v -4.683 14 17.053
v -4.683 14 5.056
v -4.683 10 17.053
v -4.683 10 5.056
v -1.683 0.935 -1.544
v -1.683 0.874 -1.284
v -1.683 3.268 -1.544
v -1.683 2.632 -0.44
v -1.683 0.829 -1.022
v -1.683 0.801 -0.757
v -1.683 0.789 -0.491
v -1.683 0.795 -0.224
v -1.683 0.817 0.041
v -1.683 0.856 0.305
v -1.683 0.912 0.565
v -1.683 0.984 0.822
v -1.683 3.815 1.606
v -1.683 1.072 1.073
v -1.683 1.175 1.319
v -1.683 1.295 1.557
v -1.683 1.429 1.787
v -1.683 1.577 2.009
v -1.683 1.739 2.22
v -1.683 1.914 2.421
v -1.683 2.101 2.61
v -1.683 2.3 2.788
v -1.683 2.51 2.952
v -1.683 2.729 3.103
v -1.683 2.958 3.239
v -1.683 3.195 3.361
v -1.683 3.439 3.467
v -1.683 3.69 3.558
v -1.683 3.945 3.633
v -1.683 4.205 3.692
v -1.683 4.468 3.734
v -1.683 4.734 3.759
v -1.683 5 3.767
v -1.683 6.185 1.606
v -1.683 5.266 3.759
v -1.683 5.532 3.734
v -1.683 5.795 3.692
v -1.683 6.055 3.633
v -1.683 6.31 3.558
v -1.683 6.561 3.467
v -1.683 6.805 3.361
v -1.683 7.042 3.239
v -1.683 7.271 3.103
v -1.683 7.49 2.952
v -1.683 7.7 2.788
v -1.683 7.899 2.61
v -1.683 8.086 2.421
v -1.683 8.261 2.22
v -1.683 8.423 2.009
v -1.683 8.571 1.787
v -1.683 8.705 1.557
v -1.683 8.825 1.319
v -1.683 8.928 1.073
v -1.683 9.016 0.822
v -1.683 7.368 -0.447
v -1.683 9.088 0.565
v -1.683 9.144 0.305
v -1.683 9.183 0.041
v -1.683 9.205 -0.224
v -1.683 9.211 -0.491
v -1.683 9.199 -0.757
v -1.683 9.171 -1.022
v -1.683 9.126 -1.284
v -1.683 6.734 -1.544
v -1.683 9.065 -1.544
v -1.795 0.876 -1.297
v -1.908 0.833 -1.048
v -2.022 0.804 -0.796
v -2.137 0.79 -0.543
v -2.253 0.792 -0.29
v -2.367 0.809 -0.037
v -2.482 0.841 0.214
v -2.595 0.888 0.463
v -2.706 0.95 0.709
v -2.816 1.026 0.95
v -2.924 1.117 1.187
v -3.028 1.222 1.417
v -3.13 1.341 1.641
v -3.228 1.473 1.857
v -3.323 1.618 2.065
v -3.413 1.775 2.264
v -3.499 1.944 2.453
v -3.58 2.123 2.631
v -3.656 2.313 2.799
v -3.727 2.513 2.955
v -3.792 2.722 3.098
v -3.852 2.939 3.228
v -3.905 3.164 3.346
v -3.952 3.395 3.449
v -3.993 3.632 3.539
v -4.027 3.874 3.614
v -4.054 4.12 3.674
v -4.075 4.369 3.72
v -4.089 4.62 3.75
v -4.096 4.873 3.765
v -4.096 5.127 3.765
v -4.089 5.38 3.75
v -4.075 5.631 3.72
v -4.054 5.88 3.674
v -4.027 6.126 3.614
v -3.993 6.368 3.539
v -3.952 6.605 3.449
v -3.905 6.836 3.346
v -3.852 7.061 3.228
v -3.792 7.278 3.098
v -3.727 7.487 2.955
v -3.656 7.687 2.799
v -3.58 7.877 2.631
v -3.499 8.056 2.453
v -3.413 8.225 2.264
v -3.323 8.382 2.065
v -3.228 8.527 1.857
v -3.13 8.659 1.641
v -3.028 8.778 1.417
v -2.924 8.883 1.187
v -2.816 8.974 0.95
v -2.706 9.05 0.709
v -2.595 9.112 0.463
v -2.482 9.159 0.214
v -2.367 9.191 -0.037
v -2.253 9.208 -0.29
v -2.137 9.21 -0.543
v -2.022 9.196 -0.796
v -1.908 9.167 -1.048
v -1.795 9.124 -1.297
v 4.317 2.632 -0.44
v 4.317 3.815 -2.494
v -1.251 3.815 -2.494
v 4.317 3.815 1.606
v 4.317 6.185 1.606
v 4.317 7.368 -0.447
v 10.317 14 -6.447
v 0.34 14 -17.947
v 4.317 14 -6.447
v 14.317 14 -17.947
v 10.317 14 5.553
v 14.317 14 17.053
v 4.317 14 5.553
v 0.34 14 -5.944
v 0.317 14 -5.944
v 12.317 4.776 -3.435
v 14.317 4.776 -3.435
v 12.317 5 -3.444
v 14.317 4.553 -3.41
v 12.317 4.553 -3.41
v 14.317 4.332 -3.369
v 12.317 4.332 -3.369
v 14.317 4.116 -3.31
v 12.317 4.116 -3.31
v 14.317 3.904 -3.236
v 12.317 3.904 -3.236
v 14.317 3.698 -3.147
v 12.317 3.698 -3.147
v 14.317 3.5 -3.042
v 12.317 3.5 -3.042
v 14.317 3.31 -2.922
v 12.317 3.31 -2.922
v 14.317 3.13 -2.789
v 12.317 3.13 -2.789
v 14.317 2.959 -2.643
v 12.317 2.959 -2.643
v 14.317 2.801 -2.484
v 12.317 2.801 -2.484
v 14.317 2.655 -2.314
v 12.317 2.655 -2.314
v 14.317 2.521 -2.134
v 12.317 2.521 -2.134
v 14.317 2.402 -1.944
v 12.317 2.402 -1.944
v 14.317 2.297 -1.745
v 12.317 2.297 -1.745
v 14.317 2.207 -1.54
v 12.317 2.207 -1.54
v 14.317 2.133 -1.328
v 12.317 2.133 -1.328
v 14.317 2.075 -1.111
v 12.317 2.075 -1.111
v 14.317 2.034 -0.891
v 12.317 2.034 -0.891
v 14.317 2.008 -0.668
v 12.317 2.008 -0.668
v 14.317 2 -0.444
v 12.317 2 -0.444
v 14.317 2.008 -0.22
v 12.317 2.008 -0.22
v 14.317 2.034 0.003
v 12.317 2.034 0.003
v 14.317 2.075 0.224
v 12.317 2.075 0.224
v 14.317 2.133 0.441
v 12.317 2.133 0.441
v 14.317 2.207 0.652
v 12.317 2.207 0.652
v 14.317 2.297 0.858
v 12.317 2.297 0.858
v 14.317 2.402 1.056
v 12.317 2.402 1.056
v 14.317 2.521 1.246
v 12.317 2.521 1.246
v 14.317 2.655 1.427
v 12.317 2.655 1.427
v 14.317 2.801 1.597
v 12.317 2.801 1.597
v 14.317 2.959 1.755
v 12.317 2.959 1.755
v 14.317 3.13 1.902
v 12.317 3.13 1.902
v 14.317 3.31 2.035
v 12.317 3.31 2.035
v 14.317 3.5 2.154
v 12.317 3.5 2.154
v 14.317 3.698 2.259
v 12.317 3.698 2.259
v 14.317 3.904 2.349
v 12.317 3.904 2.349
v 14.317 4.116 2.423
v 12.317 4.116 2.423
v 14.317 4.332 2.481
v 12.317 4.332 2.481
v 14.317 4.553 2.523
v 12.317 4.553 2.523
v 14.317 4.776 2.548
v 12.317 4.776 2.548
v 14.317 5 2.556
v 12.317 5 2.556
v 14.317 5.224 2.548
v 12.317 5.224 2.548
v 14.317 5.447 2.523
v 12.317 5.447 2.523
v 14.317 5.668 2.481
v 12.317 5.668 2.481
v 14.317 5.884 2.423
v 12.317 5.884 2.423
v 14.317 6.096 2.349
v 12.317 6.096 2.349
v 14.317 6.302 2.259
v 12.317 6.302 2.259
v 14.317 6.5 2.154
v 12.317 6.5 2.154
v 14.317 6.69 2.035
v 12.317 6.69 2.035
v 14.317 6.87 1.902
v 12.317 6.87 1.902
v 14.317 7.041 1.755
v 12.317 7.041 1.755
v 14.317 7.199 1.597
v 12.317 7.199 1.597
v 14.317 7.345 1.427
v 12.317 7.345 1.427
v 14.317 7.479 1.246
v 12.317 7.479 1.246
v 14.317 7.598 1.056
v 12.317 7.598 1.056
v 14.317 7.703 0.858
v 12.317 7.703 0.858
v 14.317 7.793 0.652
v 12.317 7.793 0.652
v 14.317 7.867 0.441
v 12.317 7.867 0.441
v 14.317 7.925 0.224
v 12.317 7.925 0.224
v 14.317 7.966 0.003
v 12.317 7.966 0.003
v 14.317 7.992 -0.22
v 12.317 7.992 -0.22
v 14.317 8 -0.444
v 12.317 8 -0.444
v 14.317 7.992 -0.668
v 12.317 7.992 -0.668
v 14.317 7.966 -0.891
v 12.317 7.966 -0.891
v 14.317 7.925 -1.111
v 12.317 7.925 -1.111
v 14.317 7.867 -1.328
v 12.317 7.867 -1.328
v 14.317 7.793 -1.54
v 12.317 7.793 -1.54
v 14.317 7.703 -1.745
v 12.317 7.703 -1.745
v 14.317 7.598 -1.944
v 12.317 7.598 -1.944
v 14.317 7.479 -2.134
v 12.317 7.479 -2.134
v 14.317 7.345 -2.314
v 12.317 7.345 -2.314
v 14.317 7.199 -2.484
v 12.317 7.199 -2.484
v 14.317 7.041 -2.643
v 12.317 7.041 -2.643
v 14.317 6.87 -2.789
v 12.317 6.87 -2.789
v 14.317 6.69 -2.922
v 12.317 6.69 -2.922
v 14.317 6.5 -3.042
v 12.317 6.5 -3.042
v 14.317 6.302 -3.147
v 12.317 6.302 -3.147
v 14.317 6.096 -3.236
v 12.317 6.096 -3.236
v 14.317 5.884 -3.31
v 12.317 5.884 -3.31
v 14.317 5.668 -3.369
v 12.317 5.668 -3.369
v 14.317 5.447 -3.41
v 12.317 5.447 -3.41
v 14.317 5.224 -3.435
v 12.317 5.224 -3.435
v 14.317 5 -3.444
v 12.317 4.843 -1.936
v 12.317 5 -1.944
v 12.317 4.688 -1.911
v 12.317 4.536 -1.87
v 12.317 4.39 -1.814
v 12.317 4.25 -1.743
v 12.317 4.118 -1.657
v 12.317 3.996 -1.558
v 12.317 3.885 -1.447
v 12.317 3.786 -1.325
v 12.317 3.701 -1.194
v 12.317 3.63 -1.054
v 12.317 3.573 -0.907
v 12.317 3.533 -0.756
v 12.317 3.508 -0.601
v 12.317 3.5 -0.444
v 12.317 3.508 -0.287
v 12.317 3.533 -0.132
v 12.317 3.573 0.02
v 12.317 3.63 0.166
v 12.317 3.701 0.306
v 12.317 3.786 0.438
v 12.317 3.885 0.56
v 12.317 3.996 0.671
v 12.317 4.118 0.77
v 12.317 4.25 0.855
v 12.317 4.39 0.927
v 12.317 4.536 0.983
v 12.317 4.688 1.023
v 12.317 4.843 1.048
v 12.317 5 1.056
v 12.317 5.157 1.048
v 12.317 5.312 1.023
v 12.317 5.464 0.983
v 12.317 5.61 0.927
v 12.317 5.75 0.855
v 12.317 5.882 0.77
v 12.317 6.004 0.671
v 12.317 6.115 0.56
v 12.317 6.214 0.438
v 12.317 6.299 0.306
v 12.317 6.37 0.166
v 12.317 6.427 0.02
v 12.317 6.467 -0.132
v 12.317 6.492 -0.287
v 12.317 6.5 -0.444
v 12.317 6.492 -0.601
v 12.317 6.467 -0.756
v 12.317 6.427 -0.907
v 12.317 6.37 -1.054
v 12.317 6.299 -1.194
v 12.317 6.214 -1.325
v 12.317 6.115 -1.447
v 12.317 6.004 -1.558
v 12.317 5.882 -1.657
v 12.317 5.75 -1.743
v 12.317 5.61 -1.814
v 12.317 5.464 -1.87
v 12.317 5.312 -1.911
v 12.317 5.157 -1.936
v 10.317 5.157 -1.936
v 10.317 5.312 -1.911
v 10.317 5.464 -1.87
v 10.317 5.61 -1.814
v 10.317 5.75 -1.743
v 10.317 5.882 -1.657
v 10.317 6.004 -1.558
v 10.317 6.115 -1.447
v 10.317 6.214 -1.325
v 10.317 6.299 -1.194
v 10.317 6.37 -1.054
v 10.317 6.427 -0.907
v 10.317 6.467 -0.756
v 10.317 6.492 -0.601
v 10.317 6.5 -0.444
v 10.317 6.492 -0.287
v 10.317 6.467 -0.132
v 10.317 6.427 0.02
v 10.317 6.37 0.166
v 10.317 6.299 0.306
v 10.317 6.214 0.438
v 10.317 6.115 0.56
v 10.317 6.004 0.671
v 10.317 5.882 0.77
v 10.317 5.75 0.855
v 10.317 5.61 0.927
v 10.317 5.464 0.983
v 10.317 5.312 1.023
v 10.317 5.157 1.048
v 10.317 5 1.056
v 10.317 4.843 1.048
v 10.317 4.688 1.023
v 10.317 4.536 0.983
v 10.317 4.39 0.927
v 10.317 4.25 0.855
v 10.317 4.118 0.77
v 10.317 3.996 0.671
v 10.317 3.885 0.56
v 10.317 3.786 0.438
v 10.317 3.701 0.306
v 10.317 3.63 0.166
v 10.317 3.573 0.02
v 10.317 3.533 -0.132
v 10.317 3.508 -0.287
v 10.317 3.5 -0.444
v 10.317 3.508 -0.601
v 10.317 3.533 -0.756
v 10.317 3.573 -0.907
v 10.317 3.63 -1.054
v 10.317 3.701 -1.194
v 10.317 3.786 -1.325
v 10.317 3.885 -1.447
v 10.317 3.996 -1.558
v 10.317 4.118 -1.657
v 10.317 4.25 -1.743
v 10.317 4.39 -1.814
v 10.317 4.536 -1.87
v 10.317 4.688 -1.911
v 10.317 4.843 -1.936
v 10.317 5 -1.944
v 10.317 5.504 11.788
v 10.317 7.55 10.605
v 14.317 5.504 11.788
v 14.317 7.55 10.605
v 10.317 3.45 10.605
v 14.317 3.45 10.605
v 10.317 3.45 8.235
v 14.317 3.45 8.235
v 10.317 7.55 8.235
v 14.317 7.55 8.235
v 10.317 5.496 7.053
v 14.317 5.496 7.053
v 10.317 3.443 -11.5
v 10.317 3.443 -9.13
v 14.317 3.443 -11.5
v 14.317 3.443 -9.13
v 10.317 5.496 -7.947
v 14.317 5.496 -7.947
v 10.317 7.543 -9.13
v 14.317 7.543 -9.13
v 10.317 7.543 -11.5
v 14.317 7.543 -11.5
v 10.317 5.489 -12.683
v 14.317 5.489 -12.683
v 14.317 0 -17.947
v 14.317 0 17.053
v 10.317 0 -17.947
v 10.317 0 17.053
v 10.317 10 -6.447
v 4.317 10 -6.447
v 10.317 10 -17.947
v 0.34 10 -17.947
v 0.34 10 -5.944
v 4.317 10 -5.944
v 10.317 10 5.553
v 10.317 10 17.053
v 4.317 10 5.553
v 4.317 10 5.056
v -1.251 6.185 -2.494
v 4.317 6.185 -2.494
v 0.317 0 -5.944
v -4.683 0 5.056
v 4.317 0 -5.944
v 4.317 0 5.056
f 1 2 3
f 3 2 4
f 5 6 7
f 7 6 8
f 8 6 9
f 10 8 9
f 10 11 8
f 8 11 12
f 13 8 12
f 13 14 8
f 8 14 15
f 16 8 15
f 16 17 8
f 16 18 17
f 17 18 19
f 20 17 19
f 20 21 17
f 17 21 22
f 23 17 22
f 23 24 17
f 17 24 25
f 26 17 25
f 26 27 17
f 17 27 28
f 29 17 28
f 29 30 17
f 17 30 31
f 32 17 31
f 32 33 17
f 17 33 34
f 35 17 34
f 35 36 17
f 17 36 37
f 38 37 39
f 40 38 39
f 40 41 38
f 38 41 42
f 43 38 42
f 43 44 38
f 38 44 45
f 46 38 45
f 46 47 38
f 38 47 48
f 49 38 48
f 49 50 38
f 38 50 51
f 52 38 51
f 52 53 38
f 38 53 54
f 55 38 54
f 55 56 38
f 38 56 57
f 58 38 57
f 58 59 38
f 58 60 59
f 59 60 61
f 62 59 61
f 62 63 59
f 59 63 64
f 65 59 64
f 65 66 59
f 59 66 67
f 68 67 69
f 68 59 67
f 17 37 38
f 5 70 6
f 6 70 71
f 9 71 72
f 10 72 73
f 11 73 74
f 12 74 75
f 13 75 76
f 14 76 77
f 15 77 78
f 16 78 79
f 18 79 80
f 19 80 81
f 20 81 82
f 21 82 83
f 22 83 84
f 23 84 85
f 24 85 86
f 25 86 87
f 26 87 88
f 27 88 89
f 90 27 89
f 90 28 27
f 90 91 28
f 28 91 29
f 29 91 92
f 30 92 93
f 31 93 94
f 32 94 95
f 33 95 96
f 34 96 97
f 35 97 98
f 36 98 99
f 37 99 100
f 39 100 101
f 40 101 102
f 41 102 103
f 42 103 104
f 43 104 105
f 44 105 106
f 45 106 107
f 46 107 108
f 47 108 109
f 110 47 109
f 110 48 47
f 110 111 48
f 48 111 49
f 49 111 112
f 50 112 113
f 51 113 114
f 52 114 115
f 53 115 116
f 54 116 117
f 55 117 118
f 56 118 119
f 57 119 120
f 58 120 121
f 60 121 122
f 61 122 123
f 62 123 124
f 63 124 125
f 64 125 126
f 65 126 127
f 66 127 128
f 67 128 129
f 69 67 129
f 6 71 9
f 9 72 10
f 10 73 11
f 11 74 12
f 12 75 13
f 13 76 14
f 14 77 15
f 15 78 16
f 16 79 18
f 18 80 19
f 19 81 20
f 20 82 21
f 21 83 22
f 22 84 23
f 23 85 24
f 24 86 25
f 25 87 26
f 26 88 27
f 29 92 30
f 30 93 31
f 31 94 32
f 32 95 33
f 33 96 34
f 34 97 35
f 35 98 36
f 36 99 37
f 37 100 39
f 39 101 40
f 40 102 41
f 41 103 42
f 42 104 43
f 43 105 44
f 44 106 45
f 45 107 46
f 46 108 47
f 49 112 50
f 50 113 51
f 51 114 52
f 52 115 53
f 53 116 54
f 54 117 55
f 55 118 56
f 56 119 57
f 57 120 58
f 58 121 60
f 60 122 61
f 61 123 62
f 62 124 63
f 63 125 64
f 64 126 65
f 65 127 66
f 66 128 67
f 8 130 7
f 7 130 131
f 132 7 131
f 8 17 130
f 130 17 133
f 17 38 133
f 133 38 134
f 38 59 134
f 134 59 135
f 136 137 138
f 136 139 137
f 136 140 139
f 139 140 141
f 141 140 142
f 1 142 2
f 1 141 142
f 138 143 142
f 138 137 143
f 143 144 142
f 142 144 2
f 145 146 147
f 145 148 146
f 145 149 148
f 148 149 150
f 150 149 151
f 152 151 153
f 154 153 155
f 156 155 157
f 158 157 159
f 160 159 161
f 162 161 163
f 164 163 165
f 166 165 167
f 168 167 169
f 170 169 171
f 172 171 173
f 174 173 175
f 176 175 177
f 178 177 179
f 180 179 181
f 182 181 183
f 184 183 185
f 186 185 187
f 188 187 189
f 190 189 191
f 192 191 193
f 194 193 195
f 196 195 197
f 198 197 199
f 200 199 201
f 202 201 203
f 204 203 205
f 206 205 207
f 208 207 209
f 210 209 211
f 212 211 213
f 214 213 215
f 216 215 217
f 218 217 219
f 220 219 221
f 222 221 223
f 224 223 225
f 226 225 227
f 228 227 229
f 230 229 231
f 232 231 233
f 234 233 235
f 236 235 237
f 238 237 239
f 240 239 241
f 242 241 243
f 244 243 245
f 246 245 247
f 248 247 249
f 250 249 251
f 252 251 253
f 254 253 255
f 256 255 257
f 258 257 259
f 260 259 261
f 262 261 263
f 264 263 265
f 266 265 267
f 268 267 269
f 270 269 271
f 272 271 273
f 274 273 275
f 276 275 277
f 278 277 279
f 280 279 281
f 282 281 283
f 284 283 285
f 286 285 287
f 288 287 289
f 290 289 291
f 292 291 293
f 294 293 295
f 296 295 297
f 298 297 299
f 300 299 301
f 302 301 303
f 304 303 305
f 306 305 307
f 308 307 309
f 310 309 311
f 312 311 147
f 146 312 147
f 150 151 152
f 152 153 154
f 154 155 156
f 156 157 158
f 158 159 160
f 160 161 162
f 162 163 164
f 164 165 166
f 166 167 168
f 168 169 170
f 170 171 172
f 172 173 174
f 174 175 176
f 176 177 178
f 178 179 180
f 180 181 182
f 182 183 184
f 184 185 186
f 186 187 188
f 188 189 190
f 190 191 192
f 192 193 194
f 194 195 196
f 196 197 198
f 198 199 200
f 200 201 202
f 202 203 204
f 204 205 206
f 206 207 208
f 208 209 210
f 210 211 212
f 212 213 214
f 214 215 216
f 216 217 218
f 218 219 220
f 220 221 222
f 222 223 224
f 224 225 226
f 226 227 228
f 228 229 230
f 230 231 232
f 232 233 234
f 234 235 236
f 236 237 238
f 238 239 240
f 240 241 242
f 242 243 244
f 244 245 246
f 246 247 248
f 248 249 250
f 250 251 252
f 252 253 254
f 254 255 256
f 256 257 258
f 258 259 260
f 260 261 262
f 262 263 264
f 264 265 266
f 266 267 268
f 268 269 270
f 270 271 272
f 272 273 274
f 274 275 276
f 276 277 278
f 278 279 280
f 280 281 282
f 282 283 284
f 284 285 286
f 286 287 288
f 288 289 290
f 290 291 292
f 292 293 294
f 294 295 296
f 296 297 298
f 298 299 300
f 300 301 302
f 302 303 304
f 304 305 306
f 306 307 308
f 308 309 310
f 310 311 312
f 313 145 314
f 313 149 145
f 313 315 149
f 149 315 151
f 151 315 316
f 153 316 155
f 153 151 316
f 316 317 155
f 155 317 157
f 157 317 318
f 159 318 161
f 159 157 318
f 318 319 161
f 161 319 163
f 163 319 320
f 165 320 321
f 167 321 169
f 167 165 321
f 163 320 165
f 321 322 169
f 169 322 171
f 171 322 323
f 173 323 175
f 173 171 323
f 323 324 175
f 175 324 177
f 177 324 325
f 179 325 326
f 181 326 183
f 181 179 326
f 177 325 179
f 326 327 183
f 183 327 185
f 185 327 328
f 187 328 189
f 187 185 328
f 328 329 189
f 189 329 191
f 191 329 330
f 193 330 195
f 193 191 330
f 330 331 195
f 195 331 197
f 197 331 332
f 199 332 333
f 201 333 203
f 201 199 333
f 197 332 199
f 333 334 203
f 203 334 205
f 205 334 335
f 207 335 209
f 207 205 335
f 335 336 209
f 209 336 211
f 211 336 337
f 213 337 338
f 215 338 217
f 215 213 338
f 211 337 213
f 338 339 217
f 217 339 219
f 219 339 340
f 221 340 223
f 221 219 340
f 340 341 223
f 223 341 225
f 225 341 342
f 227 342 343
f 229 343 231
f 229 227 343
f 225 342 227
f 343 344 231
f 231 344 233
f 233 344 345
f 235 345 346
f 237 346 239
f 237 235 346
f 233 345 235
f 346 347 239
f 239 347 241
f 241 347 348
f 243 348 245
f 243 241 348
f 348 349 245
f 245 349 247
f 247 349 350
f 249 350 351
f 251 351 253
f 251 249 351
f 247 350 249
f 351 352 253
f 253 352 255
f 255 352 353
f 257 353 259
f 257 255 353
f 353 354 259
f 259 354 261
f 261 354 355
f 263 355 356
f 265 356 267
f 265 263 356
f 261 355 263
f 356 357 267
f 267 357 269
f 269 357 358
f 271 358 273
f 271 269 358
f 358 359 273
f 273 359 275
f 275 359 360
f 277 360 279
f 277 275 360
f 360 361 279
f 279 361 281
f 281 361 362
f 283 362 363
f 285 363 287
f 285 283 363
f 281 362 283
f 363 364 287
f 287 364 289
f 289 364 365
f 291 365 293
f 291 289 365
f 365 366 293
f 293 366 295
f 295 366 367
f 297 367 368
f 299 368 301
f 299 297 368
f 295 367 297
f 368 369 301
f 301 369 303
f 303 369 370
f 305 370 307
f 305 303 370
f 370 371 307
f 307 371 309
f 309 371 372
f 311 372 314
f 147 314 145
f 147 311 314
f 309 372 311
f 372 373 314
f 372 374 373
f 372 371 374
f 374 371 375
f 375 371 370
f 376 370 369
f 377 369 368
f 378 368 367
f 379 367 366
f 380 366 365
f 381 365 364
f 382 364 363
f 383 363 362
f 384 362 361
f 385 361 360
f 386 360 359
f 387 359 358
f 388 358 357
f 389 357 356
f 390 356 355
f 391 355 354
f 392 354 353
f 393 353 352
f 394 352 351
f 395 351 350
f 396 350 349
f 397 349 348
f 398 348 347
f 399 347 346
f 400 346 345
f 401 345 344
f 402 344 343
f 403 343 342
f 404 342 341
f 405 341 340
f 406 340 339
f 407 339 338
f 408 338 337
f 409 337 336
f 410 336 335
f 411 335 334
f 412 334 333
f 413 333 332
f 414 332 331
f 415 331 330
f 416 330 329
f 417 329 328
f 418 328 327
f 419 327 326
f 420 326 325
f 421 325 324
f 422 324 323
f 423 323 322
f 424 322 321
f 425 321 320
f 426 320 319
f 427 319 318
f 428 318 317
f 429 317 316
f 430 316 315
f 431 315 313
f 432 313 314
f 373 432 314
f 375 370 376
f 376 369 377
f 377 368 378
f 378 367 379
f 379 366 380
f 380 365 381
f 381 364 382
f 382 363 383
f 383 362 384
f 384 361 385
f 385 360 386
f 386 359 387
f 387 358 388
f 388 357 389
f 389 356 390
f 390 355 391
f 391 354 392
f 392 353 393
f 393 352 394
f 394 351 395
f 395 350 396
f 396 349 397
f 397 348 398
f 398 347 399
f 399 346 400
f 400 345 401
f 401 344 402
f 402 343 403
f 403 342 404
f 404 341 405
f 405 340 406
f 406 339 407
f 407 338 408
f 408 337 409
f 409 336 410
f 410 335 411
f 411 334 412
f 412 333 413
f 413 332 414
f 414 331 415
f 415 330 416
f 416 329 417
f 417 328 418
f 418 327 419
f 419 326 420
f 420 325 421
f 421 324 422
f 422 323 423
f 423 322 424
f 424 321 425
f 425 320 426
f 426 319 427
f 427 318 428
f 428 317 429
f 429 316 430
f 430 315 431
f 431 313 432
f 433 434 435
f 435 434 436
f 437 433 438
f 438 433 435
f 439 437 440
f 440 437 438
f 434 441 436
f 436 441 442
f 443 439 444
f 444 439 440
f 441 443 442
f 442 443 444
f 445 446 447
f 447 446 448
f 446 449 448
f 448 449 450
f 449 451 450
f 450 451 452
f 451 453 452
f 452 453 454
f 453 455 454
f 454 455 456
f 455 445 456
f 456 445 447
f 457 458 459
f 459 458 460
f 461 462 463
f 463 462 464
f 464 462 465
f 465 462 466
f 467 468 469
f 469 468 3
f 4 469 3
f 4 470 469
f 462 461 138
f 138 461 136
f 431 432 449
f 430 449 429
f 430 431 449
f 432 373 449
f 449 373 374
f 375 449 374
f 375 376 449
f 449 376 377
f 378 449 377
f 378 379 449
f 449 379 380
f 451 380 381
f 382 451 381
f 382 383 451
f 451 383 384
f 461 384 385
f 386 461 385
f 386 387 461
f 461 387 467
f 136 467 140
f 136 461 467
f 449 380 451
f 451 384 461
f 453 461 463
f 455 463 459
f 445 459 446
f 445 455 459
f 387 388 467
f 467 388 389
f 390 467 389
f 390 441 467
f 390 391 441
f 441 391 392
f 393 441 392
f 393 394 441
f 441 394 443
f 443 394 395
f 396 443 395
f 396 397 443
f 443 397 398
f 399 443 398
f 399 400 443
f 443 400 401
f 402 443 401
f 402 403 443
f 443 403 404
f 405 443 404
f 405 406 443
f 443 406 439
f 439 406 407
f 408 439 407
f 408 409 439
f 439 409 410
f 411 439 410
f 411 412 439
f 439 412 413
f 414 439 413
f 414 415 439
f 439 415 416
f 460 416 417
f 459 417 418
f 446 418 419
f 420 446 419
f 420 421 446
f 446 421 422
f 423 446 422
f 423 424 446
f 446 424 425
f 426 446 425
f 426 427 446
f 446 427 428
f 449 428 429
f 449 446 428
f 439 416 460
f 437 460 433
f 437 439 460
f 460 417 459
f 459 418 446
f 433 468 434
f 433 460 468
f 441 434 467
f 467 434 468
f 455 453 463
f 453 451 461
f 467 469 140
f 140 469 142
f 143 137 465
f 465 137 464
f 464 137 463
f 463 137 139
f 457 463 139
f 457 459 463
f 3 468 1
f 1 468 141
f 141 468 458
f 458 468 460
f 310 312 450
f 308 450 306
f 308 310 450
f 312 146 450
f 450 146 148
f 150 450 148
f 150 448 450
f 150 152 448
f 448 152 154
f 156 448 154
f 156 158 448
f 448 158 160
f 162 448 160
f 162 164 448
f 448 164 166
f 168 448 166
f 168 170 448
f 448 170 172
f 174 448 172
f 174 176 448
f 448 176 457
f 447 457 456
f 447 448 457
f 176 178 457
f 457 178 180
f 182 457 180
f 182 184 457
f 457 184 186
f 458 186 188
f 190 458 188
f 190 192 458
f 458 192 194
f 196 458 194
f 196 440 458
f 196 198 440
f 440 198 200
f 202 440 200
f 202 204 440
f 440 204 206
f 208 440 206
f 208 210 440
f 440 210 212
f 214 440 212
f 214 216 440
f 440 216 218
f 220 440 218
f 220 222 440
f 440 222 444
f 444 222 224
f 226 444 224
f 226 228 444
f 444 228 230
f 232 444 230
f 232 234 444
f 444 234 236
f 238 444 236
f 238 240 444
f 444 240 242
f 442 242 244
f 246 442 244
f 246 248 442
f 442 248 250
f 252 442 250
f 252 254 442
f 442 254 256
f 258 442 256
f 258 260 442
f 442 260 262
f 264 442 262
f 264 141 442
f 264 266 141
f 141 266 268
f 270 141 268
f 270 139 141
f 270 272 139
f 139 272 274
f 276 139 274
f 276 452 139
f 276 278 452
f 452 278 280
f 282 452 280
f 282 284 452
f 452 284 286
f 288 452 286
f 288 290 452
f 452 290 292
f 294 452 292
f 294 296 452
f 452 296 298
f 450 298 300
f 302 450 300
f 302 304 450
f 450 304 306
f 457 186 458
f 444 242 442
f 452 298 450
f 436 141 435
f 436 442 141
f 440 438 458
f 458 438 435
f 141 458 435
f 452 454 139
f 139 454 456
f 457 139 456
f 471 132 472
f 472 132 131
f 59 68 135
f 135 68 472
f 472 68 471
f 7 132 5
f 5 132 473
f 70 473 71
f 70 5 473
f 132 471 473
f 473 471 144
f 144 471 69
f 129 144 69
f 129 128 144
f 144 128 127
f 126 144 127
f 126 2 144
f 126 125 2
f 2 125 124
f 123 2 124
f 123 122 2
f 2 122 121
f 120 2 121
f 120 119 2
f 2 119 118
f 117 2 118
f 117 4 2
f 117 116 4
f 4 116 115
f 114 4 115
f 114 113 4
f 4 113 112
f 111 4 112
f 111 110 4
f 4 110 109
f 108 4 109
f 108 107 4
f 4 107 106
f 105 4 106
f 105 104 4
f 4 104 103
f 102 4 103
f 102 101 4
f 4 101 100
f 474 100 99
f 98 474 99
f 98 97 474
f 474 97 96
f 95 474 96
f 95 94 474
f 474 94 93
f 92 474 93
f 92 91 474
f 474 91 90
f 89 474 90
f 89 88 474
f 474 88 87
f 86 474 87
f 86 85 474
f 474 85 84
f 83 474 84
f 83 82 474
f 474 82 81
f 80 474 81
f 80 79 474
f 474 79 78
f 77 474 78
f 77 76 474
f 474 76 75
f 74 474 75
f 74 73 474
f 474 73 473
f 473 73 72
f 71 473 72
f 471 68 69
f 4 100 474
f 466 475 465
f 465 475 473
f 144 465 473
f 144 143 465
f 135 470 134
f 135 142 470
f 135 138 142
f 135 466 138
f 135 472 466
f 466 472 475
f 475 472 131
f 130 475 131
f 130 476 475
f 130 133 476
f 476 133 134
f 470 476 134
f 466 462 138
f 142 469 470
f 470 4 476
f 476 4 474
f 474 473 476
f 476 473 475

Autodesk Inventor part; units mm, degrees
ref_plane "YZ Plane" through (0, 0, 0) normal (1, 0, 0) x (0, 1, 0)
ref_plane "XZ Plane" through (0, 0, 0) normal (0, 1, 0) x (-1, 0, 0)
ref_plane "XY Plane" through (0, 0, 0) normal (0, 0, 1) x (1, 0, 0)
sketch "Sketch1" plane through (0, 0, 0) normal (0, 1, 0) x (-1, 0, 0)
  line L0 (4.6826, 5.0563) -> (-4.3174, 5.0563)
  line L1 (-4.3174, 5.0563) -> (-4.3174, -5.9437)
  line L2 (-4.3174, -5.9437) -> (-0.3174, -5.9437)
  line L3 (4.6826, 5.0563) -> (-0.3174, -5.9437)
  point P0 (0, 0)
  dimension "d0" = 11
  dimension "d1" = 9
  dimension "d2" = 4
extrude "Extrusion1" add sketch "Sketch1" along normal blind 10
sketch "Sketch2" plane through (4.3174, 0, 5.0563) normal (1, 0, 0) x (0, 0, -1)
  line L0 (5.5037, 7.3678) -> (7.55, 3.815)
  line L1 (7.55, 3.815) -> (5.4963, 2.6322)
  line L2 (5.4963, 2.6322) -> (3.45, 6.185)
  line L3 (3.45, 6.185) -> (5.5037, 7.3678)
  line L4 (3.45, 6.185) -> (7.55, 6.185)
  line L5 (7.55, 6.185) -> (7.55, 3.815)
  line L6 (7.55, 3.815) -> (3.45, 3.815)
  line L7 (3.45, 3.815) -> (3.45, 6.185)
  line L8 (5.5037, 7.3678) -> (7.55, 6.185)
  line L9 (3.45, 3.815) -> (5.4963, 2.6322)
  line L10 (0, 0) -> (11, 0) projected
  line L11 (11, 0) -> (11, 10) projected
  line L12 (0, 10) -> (11, 10) projected
  line L13 (0, 0) -> (0, 10) projected
  line L14 (3.45, 6.185) -> (7.55, 3.815)
  line L15 (3.45, 3.815) -> (7.55, 6.185)
  line L16 (5.5037, 7.3678) -> (5.4963, 2.6322)
  point P0 (5.0563, 0)
  point P1 (11, 0)
  point P2 (5.5, 5)
  dimension "d6" = 4.1
  dimension "d7" = 2.37
  dimension "d8" = 4.1
  dimension "d9" = 2.37
  dimension "d11" = 5
  dimension "d12" = 5.5
extrude "Extrusion2" cut sketch "Sketch2" against normal through all contours L8 L4 L0 | L16 L4 L3 | L0 L4 L16 | L4 L15 L0 | L0 L15 L16 L4 | L14 L15 L2 | L2 L15 L7 | L4 L16 L14 | L5 L0 L15 | L0 L14 L15 | L15 L16 L6 L2 | L2 L6 L15 | L6 L2 L9 | L14 L6 L16 | L1 L16 L6 | L6 L16 L2
sketch "Sketch3" plane through (0, 10, 0) normal (0, 1, 0) x (1, 0, 0)
  line L0 (-4.6826, -5.0563) -> (4.3174, -5.0563) projected
  line L1 (4.3174, -5.0563) -> (4.3174, 5.9437) projected
  line L2 (4.3174, 5.9437) -> (0.3174, 5.9437) projected
  line L3 (0.3174, 5.9437) -> (-4.6826, -5.0563) projected
  line L4 (0.3399, 17.9475) -> (4.3174, 17.9475)
  line L5 (4.3174, 17.9475) -> (4.3174, -17.0525)
  line L6 (4.3174, -17.0525) -> (0.3399, -17.0525)
  line L7 (0.3399, -17.0525) -> (0.3399, 17.9475)
  line L8 (4.3174, -1.6063) -> (-3.1144, -1.6063) projected
  line L9 (4.3174, 2.4937) -> (-1.2508, 2.4937) projected
  line L10 (4.3174, 0.4475) -> (-2.1809, 0.4475) projected
  line L11 (4.3174, 17.9475) -> (14.3174, 17.9475)
  line L12 (14.3174, 17.9475) -> (14.3174, -17.0525)
  line L13 (14.3174, -17.0525) -> (4.3174, -17.0525)
  line L14 (4.3174, -17.0525) -> (4.3174, 17.9475)
  line L15 (4.3174, 6.4475) -> (10.3174, 6.4475)
  line L16 (10.3174, 6.4475) -> (10.3174, -5.5525)
  line L17 (10.3174, -5.5525) -> (4.3174, -5.5525)
  line L18 (4.3174, -5.5525) -> (4.3174, 6.4475)
  point P0 (0, 0)
  dimension "d15" = 35
  dimension "d16" = 17.5
  dimension "d17" = 10
  dimension "d18" = 6
  dimension "d19" = 6
  dimension "d20" = 12
extrude "Extrusion3" add sketch "Sketch3" along normal blind 1 contours L3 L8 L7 L0 | L7 L8 L1 L0 | L0 L5 L6 L7 | L3 L10 L7 L8 | L7 L10 L1 L8 | L3 L9 L7 L10 | L17 L16 L15 L5 L11 L12 L13 | L7 L9 L1 L10 | L3 L2 L7 L9 | L7 L2 L1 L9 | L7 L4 L5 L2
sketch "Sketch4" plane through (0, 10, 0) normal (0, -1, 0) x (1, 0, 0)
  line L0 (4.3174, -5.9437) -> (0.3399, -5.9437) projected
  line L1 (0.3399, -17.9475) -> (0.3399, -5.9437) projected
  line L2 (14.3174, -17.9475) -> (0.3399, -17.9475) projected
  line L3 (14.3174, 17.0525) -> (14.3174, -17.9475) projected
  line L4 (0.3399, 17.0525) -> (14.3174, 17.0525) projected
  line L5 (0.3399, 5.0563) -> (0.3399, 17.0525) projected
  line L6 (0.3399, 5.0563) -> (4.3174, 5.0563) projected
  line L7 (4.3174, 5.0563) -> (4.3174, 5.5525) projected
  line L8 (4.3174, 5.5525) -> (10.3174, 5.5525) projected
  line L9 (10.3174, 5.5525) -> (10.3174, -6.4475) projected
  line L10 (10.3174, -6.4475) -> (4.3174, -6.4475) projected
  line L11 (4.3174, -6.4475) -> (4.3174, -5.9437) projected
  line L12 (0.3399, 17.0525) -> (14.3174, 17.0525) projected
  line L13 (14.3174, -17.9475) -> (10.3174, -17.9475)
  line L14 (10.3174, -17.9475) -> (10.3174, 17.0525)
  line L15 (10.3174, 17.0525) -> (14.3174, 17.0525)
  line L16 (14.3174, 17.0525) -> (14.3174, -17.9475)
  point P0 (0, 0)
  dimension "d23" = 4
extrude "Extrusion4" add sketch "Sketch4" along normal blind 10 contours L9 L14 L4 L3 L2
sketch "Sketch5" plane through (14.3174, 11, 17.0525) normal (1, 0, 0) x (0, 0, -1)
  line L0 (5.2643, -5.4963) -> (8.8172, -3.45)
  line L1 (8.8172, -3.45) -> (10, -5.5037)
  line L2 (10, -5.5037) -> (6.4472, -7.55)
  line L3 (6.4472, -7.55) -> (5.2643, -5.4963)
  line L4 (6.4472, -7.55) -> (6.4472, -3.45)
  line L5 (6.4472, -3.45) -> (8.8172, -3.45)
  line L6 (8.8172, -3.45) -> (8.8172, -7.55)
  line L7 (8.8172, -7.55) -> (6.4472, -7.55)
  line L8 (5.2643, -5.4963) -> (6.4472, -3.45)
  line L9 (8.8172, -7.55) -> (10, -5.5037)
  line L10 (19.2733, 12.7) -> (12, 12.7)
  line L11 (25, -5.5037) -> (28.5528, -3.4574)
  line L12 (28.5528, -3.4574) -> (29.7357, -5.5112)
  line L13 (29.7357, -5.5112) -> (26.1828, -7.5574)
  line L14 (26.1828, -7.5574) -> (25, -5.5037)
  line L15 (26.1828, -7.5574) -> (26.1828, -3.4574)
  line L16 (26.1828, -3.4574) -> (28.5528, -3.4574)
  line L17 (28.5528, -3.4574) -> (28.5528, -7.5574)
  line L18 (28.5528, -7.5574) -> (26.1828, -7.5574)
  line L19 (25, -5.5037) -> (26.1828, -3.4574)
  line L20 (28.5528, -7.5574) -> (29.7357, -5.5112)
  line L21 (0, 0) -> (35, 0) projected
  line L22 (0, 0) -> (0, -11) projected
  line L23 (35, -11) -> (35, 0) projected
  line L24 (6.4472, -7.55) -> (8.8172, -3.45)
  line L25 (6.4472, -3.45) -> (8.8172, -7.55)
  line L26 (10, -5.5037) -> (5.2643, -5.4963)
  line L27 (26.1828, -3.4574) -> (28.5528, -7.5574)
  line L28 (26.1828, -7.5574) -> (28.5528, -3.4574)
  line L29 (25, -5.5037) -> (29.7357, -5.5112)
  line L30 (35, -11) -> (35, 0) projected
  line L31 (0, 0) -> (35, 0) projected
  line L32 (0, 0) -> (0, -11) projected
  line L33 (35, -11) -> (0, -11) projected
  line L34 (19.5463, -7.185) -> (17.4926, -8.3678) projected
  line L35 (17.4926, -8.3678) -> (15.4463, -7.185) projected
  line L36 (15.4463, -7.185) -> (15.4463, -4.815) projected
  line L37 (15.4463, -4.815) -> (17.5, -3.6322) projected
  line L38 (17.5, -3.6322) -> (19.5463, -4.815) projected
  line L39 (19.5463, -4.815) -> (19.5463, -7.185) projected
  line L40 (15.4463, -7.185) -> (19.5463, -4.815)
  line L41 (15.4463, -4.815) -> (19.5463, -7.185)
  line L42 (19.5463, -7.185) -> (17.4926, -8.3678)
  line L43 (17.5, -3.6322) -> (17.4926, -8.3678)
  circle A0 centre (17.4963, -6) radius 1.5
  point P0 (17.0525, -11)
  point P1 (11, 0)
  point P2 (7.6322, -5.5)
  point P3 (27.3678, -5.5074)
  dimension "d26" = 4.1
  dimension "d27" = 2.37
  dimension "d28" = 4.1
  dimension "d29" = 2.37
  dimension "d31" = 4.1
  dimension "d32" = 2.37
  dimension "d33" = 4.1
  dimension "d34" = 2.37
  dimension "d36" = 10
  dimension "d37" = 10
  dimension "d38" = 5.5
  dimension "d39" = 3
extrude "Extrusion5" cut sketch "Sketch5" against normal up to surface (4 mm away) contours L8 L4 L0 | L26 L4 L3 | L0 L4 L26 | L4 L25 L0 | L0 L25 L26 L4 | L24 L25 L2 | L2 L25 L7 | L4 L26 L24 | L5 L0 L25 | L0 L24 L25 | L25 L26 L6 L2 | L2 L6 L25 | L6 L2 L9 | L24 L6 L26 | L1 L26 L6 | L6 L26 L2 | L19 L15 L11 | L29 L15 L14 | L11 L15 L29 | L15 L27 L11 | L11 L27 L29 L15 | L28 L27 L13 | L13 L27 L18 | L15 L29 L28 | L16 L11 L27 | L11 L28 L27 | L27 L29 L17 L13 | L13 L17 L27 | L17 L13 L20 | L28 L17 L29 | L12 L29 L17 | L17 L29 L13 | A0 L43 L41 | L41 L40 A0 | A0 L40 L43 | L40 L43 A0 | L40 A0 L41 | L41 A0 L43
sketch "Sketch6" plane through (14.3174, 11, 17.0525) normal (1, 0, 0) x (0, 0, -1)
  circle A0 centre (17.4963, -6) radius 1.5 projected
  circle A1 centre (17.4963, -6) radius 3
  point P0 (17.0525, -11)
  dimension "d42" = 6
extrude "Extrusion6" cut sketch "Sketch6" against normal blind 2
sketch "Sketch7" plane through (0, 11, 0) normal (0, 1, 0) x (1, 0, 0)
  line L0 (4.3174, 6.4475) -> (4.3174, -5.5525) projected
  line L1 (4.3174, 6.4475) -> (10.3174, 6.4475) projected
  line L2 (10.3174, 6.4475) -> (10.3174, -5.5525) projected
  line L3 (10.3174, -5.5525) -> (4.3174, -5.5525) projected
  line L4 (0.3399, 5.9437) -> (0.3174, 5.9437) projected
  line L5 (0.3174, 5.9437) -> (-4.6826, -5.0563) projected
  line L6 (-4.6826, -5.0563) -> (0.3399, -5.0563) projected
  line L7 (0.3399, -5.0563) -> (0.3399, -17.0525) projected
  line L8 (0.3399, -17.0525) -> (14.3174, -17.0525) projected
  line L9 (14.3174, -17.0525) -> (14.3174, 17.9475) projected
  line L10 (14.3174, 17.9475) -> (0.3399, 17.9475) projected
  line L11 (0.3399, 17.9475) -> (0.3399, 5.9437) projected
  point P0 (0, 0)
extrude "Extrusion7" add sketch "Sketch7" along normal blind 3
ref_plane "Work Plane1" through (-4.6826, 7, 5.0563) normal (-1, 0, 0) x (0, 0, 1)
sketch "Sketch8" plane through (-4.6826, 7, 5.0563) normal (-1, 0, 0) x (0, 0, 1)
  circle A0 centre (-5.5, -2) radius 3 projected
  circle A1 centre (-5.5, -2) radius 4.211
  point P0 (-5.0563, -7)
extrude "Extrusion8" cut sketch "Sketch8" against normal blind 3 contours A0 | A1
sketch "Sketch9" plane through (0.3399, 10, 5.0563) normal (-1, 0, 0) x (0, 0, 1)
  line L0 (0, 0) -> (0, 4) projected
  line L1 (0, 0) -> (11.9963, 0) projected
  line L2 (11.9963, 0) -> (11.9963, 4) projected
  line L3 (0, 4) -> (11.9963, 4) projected
  point P0 (-5.0563, -10)
extrude "Extrusion9" add sketch "Sketch9" along normal up to surface (5.0225 mm away)
equation "\"d16\" = 0.5 * d15"
properties part number "world_cam_mount"
